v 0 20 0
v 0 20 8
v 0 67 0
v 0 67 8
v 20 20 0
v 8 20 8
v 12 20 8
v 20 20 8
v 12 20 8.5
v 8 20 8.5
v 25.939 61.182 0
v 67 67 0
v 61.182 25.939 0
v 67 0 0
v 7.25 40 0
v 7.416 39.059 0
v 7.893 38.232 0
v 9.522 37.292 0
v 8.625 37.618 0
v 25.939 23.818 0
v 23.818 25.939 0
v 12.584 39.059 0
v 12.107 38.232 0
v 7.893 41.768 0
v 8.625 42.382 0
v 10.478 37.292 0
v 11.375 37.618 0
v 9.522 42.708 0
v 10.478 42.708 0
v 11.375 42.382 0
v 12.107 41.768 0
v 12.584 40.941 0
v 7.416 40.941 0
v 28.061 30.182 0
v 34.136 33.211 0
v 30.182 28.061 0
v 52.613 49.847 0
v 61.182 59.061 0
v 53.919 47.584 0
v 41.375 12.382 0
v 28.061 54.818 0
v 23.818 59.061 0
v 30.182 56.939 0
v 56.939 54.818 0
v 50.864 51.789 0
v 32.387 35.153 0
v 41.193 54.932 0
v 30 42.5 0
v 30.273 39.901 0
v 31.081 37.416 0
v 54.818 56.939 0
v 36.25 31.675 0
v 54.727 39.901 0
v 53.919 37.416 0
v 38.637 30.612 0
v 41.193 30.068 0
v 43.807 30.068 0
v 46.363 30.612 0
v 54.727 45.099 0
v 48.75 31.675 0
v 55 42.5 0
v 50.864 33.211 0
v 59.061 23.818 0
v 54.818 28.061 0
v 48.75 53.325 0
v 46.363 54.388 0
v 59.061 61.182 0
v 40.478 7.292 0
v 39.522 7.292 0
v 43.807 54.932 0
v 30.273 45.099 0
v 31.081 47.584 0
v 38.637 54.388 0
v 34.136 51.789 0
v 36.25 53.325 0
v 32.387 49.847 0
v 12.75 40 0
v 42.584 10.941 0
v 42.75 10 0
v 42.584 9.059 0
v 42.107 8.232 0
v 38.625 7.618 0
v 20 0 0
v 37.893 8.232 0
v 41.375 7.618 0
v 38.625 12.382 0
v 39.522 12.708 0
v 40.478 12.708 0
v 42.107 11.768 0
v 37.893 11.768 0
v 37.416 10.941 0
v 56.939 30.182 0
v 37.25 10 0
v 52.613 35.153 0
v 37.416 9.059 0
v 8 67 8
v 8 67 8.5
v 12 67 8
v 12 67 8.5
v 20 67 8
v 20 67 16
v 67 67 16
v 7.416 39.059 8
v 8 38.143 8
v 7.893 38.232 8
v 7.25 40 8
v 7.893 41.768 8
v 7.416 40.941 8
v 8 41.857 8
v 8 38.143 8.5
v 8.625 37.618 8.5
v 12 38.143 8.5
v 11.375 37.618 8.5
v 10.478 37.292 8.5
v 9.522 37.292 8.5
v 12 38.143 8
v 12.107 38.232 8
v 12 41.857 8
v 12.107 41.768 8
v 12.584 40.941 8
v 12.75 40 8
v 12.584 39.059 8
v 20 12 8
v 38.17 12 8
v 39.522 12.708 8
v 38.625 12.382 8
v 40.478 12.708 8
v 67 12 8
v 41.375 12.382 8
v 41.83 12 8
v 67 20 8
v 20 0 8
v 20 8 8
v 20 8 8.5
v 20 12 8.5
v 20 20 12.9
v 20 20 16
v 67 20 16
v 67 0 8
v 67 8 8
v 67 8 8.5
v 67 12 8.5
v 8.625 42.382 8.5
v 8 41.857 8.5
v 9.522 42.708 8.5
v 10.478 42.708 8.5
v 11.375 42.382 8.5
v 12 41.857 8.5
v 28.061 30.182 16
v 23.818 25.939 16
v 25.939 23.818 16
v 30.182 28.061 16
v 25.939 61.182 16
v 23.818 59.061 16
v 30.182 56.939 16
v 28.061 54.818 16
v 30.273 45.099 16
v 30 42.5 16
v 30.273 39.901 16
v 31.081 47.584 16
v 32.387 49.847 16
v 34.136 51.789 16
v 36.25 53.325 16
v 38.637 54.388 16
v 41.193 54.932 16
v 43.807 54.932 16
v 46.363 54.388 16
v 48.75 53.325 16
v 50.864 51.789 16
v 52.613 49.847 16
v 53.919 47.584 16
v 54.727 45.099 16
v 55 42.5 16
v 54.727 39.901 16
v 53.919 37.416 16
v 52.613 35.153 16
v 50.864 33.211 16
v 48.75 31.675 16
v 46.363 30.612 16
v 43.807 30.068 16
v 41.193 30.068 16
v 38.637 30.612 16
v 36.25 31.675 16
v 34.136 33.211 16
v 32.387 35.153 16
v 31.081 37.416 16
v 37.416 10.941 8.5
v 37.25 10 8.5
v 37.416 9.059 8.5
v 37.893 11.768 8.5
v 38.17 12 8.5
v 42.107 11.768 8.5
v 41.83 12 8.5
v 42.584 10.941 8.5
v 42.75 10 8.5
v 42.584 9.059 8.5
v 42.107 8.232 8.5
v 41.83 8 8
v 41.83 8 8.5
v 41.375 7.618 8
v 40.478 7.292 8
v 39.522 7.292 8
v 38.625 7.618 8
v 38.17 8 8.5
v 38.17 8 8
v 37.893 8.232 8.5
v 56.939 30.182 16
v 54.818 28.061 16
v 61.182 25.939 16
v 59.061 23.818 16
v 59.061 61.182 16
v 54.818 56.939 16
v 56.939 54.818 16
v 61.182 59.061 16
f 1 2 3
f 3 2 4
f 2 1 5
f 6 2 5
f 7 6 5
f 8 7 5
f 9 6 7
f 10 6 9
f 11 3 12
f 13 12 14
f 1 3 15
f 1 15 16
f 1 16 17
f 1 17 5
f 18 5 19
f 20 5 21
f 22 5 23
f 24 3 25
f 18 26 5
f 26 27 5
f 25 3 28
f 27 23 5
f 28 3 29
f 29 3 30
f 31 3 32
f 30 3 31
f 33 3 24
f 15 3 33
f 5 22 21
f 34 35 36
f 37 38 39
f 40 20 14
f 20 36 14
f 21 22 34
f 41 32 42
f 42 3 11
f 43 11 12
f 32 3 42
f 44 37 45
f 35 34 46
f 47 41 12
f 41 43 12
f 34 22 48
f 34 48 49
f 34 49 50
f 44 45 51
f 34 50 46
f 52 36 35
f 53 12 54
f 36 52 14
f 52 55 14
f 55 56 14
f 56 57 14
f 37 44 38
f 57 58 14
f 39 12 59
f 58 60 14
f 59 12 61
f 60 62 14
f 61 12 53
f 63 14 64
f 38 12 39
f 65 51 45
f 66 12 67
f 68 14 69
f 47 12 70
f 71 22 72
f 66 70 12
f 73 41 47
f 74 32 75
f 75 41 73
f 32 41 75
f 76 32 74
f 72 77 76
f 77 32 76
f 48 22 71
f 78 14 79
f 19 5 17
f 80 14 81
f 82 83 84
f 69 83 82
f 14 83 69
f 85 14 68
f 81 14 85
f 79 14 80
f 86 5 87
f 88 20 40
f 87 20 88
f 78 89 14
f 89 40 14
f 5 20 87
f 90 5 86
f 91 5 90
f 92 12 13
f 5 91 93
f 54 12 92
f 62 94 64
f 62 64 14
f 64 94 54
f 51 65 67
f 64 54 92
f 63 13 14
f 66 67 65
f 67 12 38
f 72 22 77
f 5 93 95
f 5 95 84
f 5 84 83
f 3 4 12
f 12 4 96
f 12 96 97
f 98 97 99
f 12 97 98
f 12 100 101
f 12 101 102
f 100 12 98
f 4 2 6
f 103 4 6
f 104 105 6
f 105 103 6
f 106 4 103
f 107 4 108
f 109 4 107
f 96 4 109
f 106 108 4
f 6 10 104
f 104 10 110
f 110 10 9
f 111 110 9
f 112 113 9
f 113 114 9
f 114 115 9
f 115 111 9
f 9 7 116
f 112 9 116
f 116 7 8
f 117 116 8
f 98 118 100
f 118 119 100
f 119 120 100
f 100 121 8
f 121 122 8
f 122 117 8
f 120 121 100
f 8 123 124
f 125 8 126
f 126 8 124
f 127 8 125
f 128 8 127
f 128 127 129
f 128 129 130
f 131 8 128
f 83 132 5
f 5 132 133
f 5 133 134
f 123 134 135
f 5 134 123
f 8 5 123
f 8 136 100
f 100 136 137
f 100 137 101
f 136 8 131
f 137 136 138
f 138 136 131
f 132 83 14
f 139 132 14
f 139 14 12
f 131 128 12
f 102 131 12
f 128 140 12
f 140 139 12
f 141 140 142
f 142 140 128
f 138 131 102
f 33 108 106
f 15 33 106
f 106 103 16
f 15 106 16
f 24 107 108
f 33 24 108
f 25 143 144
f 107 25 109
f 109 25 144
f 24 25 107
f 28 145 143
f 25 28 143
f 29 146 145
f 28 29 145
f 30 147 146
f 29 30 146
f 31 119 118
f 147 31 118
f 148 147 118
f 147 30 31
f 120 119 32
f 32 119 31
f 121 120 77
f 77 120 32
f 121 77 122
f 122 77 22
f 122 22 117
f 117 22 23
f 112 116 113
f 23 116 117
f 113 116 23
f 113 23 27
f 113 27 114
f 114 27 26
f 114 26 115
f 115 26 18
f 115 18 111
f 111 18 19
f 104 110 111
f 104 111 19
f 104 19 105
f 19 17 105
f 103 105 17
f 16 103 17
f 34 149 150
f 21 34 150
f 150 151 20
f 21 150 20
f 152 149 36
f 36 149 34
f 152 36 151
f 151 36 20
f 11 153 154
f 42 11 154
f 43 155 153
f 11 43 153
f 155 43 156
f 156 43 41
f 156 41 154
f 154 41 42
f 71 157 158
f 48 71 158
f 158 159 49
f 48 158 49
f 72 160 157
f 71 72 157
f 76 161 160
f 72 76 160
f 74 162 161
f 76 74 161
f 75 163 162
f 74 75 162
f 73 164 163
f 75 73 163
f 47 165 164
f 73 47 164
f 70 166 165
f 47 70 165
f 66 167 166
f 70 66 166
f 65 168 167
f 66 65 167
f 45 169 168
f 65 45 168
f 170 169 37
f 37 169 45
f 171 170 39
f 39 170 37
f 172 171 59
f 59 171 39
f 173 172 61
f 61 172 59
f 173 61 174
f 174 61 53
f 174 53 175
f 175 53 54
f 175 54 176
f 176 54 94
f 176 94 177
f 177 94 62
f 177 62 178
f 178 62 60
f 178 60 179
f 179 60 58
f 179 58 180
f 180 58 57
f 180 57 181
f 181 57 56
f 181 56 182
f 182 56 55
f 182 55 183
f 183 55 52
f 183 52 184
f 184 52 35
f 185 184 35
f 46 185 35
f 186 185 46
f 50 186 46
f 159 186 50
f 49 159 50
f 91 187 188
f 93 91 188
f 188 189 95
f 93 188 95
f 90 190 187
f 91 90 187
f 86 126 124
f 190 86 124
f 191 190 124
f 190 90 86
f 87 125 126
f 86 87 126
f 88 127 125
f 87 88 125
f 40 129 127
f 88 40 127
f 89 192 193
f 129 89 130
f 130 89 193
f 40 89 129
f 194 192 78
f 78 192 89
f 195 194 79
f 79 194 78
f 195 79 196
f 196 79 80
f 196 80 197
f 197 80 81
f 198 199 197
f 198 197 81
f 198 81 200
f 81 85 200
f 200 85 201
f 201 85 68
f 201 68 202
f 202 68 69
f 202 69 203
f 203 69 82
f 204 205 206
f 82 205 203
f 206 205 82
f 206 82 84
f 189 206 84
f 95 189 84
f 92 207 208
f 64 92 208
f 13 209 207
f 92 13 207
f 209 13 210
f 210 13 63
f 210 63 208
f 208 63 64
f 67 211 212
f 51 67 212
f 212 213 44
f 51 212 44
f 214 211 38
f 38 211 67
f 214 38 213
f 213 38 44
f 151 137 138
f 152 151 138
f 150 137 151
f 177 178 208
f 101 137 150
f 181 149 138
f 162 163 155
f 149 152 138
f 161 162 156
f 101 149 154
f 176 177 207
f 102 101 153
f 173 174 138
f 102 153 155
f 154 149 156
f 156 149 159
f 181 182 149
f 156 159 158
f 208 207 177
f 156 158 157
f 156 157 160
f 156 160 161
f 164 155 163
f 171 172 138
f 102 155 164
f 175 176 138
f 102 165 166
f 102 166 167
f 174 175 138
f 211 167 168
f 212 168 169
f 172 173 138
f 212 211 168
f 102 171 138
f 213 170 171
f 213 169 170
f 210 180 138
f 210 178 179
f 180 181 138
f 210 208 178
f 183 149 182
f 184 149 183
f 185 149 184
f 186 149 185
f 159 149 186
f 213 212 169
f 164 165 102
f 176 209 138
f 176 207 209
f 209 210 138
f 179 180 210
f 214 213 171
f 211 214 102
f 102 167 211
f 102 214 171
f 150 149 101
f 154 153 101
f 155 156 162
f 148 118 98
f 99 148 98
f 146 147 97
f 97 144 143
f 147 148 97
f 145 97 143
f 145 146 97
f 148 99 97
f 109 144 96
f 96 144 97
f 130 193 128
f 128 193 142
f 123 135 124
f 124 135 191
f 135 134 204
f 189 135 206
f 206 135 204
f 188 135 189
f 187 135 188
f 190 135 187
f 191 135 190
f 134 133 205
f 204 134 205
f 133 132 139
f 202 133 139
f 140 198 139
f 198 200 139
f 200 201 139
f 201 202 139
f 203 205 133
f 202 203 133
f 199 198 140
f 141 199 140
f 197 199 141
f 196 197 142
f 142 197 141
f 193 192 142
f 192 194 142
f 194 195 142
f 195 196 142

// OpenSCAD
barwidth = 20;
width_ridge=4;
widthNema17=45;

nema17holeOffset =6;
nema17innerHole=25/2;
nema17Shaft=8/2;
nema17Center = barwidth+widthNema17/2;
nema17HoleDistance =31;

motorThickNess=5;
offsetx =0;
offsety  =0;



height = barwidth+widthNema17+offsety+2;
width = barwidth+widthNema17+offsetx+2;

thickness=8;
spacing_bars = 50;
largeCircle = 70.0;
holeSize=5.5;

holes = [

	[barwidth+barwidth,barwidth /2,5.5],
	[barwidth /2,barwidth+barwidth,5.5],
	

];



difference() {
union() {

cube([width,width,thickness],false);

translate([offsetx+barwidth/2-width_ridge/2 ,offsety+ barwidth,0.5]) {
	cube([width_ridge,width - barwidth - offsety,thickness],false);
}

translate([offsetx + barwidth,offsety+barwidth/2-width_ridge/2,0.5]) {
	cube([width - barwidth - offsetx,width_ridge,thickness],false);
}

translate([barwidth,barwidth,thickness])
	cube([width-barwidth,height-barwidth,thickness],false);

}



translate([0,0,-0.1]) {
	cube([barwidth,barwidth,thickness+motorThickNess],false);


	for(i = holes) {
		translate([offsetx + i[0],offsety + i[1],0])
			cylinder(h=100,r=i[2]/2, center = false, $fs=1);
	}


}

translate([nema17Center,nema17Center,-1]) 
	cylinder(h=100,r=nema17innerHole, center = false, $fs=1);


translate([nema17Center-nema17HoleDistance/2,nema17Center-nema17HoleDistance/2,thickness+motorThickNess/2])
rotate([0,0,-45])
cube([3,6,thickness+motorThickNess+8],true);


translate([nema17Center+nema17HoleDistance/2,nema17Center+nema17HoleDistance/2,thickness+motorThickNess/2])
rotate([0,0,-45])
cube([3,6,thickness+motorThickNess+8],true);

translate([nema17Center-nema17HoleDistance/2,nema17Center+nema17HoleDistance/2,thickness+motorThickNess/2])
rotate([0,0,45])
cube([3,6,thickness+motorThickNess+8],true);

translate([nema17Center+nema17HoleDistance/2,nema17Center-nema17HoleDistance/2,thickness+motorThickNess/2])
rotate([0,0,45])
cube([3,6,thickness+motorThickNess+8],true);
}
